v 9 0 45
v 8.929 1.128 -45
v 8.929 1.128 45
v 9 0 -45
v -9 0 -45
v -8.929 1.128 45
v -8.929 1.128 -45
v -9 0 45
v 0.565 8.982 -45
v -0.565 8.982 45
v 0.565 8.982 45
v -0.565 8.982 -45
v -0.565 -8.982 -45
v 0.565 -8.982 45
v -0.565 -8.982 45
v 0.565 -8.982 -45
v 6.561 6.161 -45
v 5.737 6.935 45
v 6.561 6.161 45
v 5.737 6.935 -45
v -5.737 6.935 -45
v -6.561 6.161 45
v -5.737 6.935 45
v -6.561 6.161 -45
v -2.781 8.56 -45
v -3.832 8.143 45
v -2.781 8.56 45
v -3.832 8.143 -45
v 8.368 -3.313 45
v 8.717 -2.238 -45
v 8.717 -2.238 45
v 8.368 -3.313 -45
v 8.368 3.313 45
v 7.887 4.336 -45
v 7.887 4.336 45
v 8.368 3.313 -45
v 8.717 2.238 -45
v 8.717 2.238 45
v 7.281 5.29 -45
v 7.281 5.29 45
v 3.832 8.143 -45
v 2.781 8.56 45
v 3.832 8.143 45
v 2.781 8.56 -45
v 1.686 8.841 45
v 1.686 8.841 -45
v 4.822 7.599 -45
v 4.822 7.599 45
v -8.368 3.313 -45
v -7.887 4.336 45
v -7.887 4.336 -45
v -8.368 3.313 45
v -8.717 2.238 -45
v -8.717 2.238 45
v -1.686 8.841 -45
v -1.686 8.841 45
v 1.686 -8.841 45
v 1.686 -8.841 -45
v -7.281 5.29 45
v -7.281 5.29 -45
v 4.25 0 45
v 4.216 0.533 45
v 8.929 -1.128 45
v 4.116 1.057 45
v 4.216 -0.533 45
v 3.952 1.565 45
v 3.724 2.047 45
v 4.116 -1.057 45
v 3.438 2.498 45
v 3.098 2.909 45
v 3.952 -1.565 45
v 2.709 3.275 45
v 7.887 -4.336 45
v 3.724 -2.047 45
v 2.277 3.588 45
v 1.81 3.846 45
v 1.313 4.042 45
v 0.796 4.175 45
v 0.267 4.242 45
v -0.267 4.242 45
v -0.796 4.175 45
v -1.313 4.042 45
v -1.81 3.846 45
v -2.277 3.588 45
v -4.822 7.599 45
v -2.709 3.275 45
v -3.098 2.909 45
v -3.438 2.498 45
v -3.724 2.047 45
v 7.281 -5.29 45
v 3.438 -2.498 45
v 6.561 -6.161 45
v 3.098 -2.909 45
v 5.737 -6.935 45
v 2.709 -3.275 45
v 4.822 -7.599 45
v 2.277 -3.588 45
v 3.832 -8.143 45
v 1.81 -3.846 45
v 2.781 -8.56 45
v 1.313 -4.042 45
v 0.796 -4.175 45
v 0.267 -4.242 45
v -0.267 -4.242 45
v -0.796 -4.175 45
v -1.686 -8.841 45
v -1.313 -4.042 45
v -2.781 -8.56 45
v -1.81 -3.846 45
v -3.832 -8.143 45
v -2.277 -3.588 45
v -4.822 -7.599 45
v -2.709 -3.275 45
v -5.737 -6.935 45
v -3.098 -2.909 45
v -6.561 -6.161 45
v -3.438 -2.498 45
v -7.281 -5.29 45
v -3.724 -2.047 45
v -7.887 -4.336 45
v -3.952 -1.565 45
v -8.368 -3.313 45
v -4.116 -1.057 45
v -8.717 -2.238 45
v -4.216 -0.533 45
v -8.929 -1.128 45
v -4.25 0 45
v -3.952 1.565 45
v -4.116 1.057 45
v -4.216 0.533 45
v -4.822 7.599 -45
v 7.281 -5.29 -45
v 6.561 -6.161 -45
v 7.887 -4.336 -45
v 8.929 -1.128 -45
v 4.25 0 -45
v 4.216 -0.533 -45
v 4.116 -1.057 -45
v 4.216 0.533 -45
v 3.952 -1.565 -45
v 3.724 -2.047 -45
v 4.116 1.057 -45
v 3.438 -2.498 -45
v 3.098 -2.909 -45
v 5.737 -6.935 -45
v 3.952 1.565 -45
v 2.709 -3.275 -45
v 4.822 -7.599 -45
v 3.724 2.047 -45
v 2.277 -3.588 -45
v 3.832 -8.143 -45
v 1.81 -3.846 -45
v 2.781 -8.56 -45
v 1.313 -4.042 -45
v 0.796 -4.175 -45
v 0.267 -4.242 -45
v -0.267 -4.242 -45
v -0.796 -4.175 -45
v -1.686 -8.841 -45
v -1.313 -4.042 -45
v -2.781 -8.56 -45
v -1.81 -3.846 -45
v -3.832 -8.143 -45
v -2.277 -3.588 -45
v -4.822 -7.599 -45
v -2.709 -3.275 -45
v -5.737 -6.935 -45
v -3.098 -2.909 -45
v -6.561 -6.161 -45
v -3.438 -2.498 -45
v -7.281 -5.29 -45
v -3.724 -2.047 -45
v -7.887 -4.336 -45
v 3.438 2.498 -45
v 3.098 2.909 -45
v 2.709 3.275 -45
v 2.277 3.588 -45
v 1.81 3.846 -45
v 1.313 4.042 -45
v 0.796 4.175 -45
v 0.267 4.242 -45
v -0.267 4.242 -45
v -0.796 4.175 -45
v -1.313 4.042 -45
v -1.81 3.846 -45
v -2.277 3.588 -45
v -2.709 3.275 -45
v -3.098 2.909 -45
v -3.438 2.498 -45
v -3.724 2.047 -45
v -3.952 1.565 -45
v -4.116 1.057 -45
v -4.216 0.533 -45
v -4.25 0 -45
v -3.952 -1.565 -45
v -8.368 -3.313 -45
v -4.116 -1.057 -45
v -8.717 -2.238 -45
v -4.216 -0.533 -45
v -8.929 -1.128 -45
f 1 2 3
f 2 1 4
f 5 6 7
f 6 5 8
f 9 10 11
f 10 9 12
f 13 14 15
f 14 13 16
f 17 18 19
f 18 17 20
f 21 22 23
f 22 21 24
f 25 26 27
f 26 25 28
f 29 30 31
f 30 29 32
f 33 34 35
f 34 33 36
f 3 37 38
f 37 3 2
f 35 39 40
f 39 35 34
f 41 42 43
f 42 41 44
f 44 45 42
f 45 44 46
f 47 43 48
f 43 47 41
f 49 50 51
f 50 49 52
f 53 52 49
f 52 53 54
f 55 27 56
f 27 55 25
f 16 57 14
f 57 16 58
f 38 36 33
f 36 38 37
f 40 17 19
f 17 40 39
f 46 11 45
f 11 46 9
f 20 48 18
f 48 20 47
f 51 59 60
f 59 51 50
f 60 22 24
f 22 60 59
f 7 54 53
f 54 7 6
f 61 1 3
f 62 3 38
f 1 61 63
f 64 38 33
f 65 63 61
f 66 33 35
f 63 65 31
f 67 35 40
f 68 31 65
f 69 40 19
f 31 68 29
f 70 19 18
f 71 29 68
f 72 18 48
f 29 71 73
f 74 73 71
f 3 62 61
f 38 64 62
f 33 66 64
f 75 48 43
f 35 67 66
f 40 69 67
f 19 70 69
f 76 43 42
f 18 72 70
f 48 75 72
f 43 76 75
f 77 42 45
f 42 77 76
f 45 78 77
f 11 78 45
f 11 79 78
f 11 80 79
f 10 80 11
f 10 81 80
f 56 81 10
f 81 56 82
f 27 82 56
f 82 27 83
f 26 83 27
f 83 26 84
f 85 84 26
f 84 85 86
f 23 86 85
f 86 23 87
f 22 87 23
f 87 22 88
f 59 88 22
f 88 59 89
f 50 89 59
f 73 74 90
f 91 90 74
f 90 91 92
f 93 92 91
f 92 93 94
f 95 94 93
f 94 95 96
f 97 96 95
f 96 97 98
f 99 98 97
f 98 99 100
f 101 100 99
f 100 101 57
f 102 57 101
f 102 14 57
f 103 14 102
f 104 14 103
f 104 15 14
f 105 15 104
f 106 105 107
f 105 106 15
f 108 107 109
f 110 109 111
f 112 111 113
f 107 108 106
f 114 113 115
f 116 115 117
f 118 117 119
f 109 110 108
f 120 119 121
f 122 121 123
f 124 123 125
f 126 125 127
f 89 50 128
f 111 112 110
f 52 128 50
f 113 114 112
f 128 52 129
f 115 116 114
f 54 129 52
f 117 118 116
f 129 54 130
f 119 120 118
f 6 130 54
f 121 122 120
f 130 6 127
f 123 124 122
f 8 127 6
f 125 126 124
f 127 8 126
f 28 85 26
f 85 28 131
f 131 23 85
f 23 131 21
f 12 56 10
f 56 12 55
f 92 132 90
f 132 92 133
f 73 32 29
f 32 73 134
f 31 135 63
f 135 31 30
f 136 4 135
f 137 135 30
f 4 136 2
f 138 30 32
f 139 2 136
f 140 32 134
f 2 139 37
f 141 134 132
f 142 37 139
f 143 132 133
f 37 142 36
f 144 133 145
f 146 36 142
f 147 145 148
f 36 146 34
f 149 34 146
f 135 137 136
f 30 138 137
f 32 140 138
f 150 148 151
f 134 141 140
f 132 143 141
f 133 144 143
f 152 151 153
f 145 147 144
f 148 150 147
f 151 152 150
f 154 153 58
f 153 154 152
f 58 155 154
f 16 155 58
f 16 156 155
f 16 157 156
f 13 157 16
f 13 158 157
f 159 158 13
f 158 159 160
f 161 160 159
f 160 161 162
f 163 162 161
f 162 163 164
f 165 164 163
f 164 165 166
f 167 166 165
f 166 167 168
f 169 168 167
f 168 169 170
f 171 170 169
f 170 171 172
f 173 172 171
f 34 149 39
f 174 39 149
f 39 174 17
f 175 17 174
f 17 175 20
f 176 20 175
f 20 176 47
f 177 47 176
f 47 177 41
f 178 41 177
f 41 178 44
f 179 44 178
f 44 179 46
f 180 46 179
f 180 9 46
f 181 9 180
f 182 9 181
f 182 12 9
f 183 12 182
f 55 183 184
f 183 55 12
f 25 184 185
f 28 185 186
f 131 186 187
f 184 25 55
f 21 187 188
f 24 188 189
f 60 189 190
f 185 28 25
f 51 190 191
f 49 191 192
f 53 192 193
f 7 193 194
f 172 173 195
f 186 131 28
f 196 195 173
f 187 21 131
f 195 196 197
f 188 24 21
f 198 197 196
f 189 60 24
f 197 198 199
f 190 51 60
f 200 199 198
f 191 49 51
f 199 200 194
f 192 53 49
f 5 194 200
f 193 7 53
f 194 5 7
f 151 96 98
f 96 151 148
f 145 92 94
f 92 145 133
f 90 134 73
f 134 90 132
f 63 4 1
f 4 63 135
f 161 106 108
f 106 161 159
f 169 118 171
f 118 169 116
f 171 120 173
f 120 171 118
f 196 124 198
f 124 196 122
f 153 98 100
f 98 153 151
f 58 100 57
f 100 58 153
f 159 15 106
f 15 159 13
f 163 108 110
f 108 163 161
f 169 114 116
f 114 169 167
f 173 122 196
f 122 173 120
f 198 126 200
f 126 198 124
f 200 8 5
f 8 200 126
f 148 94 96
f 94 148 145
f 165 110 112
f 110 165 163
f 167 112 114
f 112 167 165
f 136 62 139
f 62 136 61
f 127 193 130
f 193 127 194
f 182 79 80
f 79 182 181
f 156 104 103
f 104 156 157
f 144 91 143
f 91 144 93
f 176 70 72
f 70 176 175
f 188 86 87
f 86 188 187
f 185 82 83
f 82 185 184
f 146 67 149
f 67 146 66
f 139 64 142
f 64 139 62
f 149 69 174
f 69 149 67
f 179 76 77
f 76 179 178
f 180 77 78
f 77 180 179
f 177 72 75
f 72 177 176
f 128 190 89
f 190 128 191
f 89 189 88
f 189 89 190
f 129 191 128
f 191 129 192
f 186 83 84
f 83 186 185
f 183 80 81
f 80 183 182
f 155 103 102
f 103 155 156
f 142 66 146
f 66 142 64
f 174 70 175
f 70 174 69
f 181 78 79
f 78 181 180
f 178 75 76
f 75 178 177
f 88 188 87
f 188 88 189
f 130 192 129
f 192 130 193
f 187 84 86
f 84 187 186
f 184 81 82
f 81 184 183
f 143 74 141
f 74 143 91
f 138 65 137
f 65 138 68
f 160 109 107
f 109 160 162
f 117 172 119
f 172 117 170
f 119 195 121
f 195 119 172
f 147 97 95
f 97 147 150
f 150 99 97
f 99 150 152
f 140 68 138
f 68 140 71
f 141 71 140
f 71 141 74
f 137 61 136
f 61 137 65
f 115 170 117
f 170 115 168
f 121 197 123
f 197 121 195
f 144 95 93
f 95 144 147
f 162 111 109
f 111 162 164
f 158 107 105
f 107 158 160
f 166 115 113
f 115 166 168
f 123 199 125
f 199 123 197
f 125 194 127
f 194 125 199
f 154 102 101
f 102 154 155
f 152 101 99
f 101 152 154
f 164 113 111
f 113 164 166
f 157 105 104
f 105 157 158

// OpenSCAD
$fn = 50;


difference() {
	union() {
		translate(v = [0, 0, -45.0000000000]) {
			cylinder(h = 90, r = 9.0000000000);
		}
	}
	union() {
		translate(v = [0, 0, -100.0000000000]) {
			cylinder(h = 200, r = 4.2500000000);
		}
	}
}
